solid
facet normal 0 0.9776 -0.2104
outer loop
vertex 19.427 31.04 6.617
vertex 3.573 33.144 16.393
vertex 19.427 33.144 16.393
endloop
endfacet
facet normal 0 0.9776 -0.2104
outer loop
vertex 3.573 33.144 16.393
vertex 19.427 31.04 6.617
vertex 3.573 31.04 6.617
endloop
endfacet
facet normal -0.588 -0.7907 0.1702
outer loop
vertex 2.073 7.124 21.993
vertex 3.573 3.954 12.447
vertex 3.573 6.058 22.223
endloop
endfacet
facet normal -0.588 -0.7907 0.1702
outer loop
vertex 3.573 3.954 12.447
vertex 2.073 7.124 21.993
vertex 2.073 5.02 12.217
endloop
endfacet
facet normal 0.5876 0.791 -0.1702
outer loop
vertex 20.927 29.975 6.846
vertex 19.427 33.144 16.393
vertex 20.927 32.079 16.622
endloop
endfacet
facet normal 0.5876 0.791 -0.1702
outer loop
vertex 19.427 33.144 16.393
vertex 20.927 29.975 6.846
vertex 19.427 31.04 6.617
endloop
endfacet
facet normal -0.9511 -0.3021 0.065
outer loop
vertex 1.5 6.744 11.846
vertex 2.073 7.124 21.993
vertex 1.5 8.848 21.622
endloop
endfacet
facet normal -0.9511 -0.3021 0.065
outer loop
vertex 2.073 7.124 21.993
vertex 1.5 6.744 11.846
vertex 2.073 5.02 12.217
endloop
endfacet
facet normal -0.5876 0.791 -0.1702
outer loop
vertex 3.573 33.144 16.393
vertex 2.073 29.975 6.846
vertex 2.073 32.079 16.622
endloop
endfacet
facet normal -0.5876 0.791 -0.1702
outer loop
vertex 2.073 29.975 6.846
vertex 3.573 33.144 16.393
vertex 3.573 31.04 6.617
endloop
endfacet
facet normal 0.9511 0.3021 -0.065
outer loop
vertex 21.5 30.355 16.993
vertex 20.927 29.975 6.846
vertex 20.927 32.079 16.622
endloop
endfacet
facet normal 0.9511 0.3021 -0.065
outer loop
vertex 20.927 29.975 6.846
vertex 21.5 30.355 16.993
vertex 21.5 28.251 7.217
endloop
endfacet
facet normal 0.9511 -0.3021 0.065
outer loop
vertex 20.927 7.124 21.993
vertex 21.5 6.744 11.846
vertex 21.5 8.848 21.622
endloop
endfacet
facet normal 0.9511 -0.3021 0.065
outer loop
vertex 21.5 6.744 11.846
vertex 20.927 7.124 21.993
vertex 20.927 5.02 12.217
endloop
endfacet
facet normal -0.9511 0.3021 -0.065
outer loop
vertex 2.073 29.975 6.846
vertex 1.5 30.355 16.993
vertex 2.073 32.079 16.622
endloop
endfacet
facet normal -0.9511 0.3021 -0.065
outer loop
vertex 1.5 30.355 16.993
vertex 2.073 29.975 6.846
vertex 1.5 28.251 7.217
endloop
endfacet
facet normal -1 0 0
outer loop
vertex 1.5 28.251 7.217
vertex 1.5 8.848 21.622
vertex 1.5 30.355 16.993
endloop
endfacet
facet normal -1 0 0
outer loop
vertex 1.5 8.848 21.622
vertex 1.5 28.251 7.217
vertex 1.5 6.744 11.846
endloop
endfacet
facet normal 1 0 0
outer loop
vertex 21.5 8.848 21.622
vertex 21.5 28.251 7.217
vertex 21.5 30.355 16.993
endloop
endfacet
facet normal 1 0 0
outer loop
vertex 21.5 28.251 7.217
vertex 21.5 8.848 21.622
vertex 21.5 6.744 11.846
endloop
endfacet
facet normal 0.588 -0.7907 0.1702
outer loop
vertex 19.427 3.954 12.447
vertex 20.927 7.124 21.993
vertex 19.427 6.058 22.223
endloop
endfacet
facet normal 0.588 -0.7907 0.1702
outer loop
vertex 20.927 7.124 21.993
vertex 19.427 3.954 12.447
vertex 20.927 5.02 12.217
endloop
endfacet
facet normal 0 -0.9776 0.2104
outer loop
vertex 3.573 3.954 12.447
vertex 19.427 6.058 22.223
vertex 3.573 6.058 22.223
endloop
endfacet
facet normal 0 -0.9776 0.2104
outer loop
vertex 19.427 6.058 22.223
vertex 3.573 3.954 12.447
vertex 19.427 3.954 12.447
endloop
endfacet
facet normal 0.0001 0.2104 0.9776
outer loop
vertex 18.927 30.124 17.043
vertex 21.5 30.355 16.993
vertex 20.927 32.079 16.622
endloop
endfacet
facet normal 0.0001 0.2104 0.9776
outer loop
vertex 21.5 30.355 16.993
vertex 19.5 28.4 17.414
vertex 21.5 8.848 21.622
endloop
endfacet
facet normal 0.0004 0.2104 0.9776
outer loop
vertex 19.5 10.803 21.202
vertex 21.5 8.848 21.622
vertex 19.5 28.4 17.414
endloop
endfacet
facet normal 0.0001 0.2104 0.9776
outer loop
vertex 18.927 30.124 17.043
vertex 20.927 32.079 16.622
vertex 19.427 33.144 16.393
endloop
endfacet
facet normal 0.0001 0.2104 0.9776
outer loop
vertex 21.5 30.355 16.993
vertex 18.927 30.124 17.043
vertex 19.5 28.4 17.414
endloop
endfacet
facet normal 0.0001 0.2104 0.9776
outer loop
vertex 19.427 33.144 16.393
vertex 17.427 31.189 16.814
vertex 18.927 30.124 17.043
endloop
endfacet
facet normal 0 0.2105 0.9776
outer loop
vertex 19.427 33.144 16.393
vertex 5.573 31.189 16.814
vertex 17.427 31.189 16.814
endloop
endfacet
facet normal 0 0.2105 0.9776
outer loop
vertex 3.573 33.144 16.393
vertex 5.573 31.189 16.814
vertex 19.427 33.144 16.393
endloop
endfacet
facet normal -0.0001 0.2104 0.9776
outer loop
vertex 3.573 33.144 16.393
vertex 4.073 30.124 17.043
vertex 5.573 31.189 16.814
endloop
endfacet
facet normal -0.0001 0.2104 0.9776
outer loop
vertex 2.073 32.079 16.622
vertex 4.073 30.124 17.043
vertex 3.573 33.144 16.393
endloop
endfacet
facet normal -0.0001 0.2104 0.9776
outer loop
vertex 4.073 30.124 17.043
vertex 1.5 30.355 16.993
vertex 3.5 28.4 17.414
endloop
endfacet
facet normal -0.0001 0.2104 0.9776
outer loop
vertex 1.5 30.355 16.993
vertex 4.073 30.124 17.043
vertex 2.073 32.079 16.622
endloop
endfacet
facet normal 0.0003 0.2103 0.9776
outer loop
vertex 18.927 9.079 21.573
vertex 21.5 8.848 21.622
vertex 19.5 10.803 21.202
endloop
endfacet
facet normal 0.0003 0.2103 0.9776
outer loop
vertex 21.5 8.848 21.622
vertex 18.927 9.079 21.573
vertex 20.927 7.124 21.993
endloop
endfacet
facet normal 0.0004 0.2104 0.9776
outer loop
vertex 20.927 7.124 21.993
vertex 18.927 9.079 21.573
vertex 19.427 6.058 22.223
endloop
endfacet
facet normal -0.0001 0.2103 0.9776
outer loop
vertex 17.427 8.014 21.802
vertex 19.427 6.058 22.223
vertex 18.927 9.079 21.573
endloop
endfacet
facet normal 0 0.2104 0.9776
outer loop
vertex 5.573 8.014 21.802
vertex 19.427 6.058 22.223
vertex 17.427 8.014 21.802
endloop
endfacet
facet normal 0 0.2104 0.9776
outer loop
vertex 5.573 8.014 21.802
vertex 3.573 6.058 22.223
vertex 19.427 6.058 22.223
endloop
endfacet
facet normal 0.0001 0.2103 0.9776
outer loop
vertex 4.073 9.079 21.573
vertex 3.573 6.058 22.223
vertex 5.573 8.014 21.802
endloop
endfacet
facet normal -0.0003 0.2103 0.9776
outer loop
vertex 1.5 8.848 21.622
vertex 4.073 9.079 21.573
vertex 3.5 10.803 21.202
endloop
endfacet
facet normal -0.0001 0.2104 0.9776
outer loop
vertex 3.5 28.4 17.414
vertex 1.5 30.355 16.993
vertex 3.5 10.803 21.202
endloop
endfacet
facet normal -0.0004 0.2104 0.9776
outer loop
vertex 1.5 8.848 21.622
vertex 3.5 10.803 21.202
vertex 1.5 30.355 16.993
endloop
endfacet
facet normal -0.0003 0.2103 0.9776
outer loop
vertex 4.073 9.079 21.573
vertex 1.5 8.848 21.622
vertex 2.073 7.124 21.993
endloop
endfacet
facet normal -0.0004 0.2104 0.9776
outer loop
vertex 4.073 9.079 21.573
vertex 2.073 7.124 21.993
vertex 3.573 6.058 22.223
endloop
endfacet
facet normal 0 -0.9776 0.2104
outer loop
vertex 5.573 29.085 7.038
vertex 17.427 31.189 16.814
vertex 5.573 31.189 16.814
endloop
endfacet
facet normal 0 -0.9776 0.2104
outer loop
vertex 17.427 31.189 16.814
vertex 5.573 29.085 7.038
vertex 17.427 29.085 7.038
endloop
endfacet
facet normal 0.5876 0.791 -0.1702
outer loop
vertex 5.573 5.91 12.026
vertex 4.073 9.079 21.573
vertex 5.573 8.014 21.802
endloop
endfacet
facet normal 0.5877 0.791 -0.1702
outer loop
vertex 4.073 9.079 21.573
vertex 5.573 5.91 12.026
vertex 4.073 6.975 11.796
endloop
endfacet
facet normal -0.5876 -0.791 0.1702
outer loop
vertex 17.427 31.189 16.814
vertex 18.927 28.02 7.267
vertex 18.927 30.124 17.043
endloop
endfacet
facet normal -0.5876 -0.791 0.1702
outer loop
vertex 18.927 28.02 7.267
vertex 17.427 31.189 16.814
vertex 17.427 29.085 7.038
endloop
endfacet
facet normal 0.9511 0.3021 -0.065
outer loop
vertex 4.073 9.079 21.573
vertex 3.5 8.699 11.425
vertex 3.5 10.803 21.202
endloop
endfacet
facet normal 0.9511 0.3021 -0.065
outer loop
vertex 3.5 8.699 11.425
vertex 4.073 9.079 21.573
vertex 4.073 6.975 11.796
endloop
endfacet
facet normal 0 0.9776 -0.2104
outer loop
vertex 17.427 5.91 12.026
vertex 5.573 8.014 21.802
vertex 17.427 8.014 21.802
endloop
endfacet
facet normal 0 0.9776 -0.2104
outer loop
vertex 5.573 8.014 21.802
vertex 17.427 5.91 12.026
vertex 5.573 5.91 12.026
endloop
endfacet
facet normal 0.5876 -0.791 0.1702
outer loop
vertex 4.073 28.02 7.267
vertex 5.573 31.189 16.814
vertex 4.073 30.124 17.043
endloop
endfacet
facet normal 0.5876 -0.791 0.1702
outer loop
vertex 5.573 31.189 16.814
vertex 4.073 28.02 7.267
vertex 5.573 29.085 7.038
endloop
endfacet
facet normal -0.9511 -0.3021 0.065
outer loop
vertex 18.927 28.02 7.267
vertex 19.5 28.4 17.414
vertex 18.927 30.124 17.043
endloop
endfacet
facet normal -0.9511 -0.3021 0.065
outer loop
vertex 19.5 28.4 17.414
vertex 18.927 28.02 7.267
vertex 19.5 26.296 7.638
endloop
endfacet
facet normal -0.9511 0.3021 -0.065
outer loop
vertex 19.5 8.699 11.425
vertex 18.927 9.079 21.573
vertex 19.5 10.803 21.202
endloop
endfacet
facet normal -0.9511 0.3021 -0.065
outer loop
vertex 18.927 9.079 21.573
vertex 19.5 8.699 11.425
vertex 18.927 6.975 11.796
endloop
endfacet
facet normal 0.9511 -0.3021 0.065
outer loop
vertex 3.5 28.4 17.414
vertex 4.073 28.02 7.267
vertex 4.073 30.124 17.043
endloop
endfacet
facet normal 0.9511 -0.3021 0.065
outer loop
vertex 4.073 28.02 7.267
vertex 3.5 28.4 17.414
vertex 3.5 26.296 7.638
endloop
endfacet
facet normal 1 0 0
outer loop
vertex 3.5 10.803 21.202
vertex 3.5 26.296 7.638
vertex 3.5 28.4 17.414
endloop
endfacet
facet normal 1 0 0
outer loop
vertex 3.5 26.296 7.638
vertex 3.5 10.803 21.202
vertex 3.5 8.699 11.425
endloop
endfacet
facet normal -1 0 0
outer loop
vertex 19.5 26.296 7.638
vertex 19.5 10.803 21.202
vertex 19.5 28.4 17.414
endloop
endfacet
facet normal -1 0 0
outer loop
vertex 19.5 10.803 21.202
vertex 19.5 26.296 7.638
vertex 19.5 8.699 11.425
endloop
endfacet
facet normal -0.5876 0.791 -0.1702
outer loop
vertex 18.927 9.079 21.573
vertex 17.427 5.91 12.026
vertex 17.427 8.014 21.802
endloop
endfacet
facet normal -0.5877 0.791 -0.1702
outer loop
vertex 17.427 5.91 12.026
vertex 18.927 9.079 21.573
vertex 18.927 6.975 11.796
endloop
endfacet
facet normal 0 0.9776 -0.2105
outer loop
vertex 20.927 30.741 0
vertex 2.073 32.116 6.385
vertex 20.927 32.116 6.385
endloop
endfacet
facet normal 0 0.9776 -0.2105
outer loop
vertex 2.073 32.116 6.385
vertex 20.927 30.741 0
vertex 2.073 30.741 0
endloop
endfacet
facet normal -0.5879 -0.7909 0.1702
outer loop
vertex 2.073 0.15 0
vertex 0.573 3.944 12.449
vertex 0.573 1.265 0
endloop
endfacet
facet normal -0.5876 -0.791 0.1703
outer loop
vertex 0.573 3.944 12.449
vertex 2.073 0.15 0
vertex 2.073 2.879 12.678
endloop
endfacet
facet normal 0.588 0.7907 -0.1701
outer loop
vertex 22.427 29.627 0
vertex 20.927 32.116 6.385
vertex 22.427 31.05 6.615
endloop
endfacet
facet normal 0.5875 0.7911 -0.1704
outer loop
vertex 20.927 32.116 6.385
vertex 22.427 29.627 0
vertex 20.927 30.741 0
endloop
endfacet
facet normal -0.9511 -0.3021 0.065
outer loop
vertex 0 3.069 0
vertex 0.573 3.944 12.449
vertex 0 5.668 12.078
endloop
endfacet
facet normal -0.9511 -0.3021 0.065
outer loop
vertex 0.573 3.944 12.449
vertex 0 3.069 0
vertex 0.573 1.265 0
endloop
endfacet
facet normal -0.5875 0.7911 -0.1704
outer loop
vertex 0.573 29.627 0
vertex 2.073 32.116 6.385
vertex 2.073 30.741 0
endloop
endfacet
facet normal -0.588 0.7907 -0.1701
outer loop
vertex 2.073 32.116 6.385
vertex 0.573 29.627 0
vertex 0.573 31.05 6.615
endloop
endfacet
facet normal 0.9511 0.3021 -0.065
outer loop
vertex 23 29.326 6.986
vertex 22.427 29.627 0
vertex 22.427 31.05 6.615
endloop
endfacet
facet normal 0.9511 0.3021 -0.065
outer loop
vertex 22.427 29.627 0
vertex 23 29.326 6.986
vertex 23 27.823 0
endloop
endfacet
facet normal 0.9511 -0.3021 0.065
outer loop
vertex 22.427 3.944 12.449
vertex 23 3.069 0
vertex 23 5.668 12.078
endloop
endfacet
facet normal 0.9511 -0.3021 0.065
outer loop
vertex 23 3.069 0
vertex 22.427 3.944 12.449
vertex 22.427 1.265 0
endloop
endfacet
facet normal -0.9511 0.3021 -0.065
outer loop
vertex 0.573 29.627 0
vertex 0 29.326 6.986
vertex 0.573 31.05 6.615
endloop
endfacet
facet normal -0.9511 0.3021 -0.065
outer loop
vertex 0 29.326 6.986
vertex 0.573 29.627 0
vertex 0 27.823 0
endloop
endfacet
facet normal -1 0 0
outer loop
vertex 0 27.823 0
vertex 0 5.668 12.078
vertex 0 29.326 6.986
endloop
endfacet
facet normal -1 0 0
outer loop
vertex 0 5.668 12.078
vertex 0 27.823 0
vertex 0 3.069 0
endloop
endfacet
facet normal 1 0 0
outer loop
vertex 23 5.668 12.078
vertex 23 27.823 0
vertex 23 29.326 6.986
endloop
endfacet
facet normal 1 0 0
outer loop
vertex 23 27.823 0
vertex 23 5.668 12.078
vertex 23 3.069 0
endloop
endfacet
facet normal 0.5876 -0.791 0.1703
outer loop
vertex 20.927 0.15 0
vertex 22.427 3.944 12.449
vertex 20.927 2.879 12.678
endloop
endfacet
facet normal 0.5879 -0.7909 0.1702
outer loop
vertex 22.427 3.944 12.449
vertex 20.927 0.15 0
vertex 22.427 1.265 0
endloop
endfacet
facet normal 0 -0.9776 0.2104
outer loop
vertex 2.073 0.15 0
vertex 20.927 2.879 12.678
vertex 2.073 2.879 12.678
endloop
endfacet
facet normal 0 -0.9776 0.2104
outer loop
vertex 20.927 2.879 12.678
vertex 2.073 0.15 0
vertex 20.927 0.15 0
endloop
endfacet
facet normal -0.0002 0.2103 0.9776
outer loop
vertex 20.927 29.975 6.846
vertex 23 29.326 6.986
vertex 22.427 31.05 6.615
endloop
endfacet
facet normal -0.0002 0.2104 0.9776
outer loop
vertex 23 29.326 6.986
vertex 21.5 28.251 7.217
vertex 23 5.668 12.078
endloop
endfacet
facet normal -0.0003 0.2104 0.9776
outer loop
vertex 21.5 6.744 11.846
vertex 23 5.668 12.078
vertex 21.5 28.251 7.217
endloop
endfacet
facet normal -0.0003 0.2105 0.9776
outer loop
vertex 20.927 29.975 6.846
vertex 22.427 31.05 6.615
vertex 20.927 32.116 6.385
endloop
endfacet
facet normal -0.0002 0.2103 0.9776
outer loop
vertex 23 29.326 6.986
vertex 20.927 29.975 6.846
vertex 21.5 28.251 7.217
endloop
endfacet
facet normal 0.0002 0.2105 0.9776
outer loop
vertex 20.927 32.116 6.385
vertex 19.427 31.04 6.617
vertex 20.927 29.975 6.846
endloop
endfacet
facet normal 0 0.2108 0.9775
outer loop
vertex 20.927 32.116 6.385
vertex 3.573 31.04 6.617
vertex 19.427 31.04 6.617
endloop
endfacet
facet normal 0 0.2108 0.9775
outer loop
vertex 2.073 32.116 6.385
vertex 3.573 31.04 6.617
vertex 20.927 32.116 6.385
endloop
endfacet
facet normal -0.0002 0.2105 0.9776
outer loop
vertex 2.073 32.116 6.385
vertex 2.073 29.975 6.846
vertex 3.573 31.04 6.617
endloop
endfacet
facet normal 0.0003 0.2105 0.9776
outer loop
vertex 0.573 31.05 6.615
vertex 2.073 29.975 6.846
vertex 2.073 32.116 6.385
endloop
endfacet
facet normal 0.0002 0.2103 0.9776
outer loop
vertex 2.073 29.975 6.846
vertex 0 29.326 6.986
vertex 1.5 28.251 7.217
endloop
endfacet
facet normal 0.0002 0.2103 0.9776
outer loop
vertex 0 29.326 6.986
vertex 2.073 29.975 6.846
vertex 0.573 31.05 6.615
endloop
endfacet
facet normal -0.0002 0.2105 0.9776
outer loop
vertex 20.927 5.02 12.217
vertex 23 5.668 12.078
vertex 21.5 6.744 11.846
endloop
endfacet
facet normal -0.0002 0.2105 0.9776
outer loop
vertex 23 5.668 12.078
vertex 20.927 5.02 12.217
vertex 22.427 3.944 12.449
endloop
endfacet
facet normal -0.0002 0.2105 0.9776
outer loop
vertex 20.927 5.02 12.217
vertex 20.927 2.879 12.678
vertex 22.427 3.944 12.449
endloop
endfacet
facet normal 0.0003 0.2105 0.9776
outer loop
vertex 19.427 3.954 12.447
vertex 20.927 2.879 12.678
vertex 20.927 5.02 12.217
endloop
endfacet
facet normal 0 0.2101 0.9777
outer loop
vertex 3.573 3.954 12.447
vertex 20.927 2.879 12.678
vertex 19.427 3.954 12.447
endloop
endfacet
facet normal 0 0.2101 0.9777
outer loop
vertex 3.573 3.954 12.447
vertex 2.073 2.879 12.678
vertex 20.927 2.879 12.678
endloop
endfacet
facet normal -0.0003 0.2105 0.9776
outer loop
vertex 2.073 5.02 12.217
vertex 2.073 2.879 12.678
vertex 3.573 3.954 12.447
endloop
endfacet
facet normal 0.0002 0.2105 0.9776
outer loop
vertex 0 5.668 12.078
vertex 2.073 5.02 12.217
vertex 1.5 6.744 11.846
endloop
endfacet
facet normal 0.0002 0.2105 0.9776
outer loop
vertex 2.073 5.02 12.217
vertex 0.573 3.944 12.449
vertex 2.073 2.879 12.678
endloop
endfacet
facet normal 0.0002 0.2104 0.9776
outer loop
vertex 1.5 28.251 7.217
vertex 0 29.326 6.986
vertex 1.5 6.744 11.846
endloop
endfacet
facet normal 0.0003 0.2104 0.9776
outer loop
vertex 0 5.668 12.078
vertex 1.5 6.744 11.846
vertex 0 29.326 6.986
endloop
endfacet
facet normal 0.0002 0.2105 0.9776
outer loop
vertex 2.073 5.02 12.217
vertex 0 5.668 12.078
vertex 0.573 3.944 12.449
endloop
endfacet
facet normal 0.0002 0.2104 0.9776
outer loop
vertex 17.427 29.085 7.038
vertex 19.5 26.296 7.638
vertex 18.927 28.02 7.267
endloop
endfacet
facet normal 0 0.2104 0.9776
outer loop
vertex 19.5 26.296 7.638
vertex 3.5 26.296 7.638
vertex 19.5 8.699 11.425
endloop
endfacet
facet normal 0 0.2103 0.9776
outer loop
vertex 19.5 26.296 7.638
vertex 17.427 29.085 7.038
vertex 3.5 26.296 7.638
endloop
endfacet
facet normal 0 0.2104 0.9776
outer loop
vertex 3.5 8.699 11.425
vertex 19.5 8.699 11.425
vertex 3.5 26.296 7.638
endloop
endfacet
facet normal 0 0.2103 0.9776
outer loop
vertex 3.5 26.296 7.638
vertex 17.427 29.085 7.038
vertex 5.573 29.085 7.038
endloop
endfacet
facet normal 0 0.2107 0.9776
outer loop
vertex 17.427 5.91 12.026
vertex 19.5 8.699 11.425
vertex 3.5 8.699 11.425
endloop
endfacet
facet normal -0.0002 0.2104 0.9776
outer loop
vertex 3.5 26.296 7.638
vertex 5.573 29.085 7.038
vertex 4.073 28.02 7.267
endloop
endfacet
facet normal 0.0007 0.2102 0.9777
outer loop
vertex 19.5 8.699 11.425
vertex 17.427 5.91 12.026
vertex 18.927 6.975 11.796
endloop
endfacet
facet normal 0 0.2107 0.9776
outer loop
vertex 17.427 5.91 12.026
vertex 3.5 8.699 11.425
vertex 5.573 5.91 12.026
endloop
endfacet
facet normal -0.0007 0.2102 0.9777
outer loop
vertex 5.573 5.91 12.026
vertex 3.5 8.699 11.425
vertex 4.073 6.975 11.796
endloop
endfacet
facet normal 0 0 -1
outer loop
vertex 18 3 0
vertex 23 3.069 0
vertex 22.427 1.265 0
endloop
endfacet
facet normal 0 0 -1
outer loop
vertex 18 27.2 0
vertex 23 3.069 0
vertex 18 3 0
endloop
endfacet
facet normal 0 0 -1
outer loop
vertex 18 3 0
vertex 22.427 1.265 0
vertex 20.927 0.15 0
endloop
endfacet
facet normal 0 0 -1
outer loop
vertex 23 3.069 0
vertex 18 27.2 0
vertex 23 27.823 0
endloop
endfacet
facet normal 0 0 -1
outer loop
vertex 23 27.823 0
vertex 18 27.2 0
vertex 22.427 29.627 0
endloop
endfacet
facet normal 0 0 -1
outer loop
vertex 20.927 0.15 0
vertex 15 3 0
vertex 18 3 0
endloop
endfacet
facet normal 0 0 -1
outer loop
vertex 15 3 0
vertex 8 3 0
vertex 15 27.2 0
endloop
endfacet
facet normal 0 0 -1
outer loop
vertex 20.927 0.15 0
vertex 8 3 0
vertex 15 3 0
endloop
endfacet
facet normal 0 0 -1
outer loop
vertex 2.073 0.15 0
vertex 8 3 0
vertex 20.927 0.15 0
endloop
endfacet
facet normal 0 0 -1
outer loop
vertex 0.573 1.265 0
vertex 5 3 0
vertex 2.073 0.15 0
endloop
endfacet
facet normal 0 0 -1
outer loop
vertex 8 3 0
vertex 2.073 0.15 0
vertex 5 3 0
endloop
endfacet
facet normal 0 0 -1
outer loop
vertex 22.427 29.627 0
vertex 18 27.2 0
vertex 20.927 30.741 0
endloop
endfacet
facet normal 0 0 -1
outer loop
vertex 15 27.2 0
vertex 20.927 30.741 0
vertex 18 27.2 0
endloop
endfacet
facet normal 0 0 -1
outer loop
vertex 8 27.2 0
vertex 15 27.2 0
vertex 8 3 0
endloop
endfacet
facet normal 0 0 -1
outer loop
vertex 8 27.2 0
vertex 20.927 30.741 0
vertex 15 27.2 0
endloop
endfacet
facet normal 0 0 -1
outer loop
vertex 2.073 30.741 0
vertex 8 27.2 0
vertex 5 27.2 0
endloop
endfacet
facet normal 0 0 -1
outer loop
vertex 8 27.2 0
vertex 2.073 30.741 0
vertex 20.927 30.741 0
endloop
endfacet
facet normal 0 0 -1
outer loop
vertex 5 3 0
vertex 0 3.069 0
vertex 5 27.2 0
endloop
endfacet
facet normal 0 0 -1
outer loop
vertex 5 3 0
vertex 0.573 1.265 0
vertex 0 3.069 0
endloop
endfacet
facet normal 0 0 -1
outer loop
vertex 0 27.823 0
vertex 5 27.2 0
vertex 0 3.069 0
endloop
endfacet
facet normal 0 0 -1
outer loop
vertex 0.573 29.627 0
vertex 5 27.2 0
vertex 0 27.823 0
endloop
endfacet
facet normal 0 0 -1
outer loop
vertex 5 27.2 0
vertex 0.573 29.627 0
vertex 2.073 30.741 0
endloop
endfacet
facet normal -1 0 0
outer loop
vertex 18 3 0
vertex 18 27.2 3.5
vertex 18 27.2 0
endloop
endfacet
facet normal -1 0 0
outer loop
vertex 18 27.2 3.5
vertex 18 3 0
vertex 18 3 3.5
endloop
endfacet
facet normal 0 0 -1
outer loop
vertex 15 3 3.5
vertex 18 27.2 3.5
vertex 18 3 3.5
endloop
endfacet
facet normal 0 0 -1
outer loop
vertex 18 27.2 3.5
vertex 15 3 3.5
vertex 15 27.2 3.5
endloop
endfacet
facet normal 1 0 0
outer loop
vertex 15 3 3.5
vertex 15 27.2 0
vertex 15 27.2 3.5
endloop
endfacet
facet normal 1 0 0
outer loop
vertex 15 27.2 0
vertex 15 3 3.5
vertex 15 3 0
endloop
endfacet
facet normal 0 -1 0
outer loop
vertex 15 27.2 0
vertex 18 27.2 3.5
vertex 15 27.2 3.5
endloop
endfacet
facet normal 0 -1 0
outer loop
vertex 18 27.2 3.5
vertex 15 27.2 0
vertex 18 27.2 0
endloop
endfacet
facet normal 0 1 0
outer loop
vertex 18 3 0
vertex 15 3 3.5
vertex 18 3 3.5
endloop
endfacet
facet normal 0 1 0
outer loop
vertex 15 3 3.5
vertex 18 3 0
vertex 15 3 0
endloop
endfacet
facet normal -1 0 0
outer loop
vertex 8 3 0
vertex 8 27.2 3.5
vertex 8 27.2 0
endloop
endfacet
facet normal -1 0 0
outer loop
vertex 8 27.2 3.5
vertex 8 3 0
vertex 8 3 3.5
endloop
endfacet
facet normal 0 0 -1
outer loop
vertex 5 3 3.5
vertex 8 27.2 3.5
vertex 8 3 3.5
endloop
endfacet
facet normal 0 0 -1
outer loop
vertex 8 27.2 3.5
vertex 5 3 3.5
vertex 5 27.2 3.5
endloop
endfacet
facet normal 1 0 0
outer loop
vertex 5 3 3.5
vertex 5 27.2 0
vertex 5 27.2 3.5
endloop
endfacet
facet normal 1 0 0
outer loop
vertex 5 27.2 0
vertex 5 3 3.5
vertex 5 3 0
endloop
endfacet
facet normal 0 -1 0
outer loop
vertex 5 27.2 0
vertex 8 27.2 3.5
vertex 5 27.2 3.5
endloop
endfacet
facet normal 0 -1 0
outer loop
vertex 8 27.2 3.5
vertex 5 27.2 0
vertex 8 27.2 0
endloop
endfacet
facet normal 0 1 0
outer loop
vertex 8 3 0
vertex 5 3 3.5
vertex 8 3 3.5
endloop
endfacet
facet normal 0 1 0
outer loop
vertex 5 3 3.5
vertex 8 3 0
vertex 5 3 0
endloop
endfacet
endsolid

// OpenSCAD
// A small plug to go into the bottom of a stepladder

module roundedRect(size, r) {

	x = size[0];
	y = size[1];
	z = size[2];

	linear_extrude(height=z) hull() {
    	// place 4 circles in the corners, with the given radius
    	translate([r,r,0])     circle(r=r);
    	translate([r,y-r,0])   circle(r=r);
    	translate([x-r,y-r,0]) circle(r=r);
    	translate([x-r,r,0])   circle(r=r);

	}

}

width=23;
length=30.2;
height=13; // Long side depth
height2=6.5; // short side depth
wall = 2; // wall thickness of the bit that inserts into the metal ladder
plugw=20; // Dimensions of the plug
plugl=28;
plugh=10;

module pluggy() {
	roundedRect([width,length,height],3);

	translate([(width-plugw)/2,(length-plugl)/2,0]) difference() {
		roundedRect([plugw,plugl,height+plugh],3);
		translate([wall,wall,0]) roundedRect([plugw-(wall*2),plugl-(wall*2),height+plugh],3);
	}	
}

deg = atan(height2/length);
difference() {
	rotate([-deg,0,0]) pluggy();
	translate([0,0,-height]) cube([width,length*2,height]);
	translate([((width-3)/2)+5,3,0]) cube([3,length-6,height2-3]);
	translate([((width-3)/2)-5,3,0]) cube([3,length-6,height2-3]);

}
